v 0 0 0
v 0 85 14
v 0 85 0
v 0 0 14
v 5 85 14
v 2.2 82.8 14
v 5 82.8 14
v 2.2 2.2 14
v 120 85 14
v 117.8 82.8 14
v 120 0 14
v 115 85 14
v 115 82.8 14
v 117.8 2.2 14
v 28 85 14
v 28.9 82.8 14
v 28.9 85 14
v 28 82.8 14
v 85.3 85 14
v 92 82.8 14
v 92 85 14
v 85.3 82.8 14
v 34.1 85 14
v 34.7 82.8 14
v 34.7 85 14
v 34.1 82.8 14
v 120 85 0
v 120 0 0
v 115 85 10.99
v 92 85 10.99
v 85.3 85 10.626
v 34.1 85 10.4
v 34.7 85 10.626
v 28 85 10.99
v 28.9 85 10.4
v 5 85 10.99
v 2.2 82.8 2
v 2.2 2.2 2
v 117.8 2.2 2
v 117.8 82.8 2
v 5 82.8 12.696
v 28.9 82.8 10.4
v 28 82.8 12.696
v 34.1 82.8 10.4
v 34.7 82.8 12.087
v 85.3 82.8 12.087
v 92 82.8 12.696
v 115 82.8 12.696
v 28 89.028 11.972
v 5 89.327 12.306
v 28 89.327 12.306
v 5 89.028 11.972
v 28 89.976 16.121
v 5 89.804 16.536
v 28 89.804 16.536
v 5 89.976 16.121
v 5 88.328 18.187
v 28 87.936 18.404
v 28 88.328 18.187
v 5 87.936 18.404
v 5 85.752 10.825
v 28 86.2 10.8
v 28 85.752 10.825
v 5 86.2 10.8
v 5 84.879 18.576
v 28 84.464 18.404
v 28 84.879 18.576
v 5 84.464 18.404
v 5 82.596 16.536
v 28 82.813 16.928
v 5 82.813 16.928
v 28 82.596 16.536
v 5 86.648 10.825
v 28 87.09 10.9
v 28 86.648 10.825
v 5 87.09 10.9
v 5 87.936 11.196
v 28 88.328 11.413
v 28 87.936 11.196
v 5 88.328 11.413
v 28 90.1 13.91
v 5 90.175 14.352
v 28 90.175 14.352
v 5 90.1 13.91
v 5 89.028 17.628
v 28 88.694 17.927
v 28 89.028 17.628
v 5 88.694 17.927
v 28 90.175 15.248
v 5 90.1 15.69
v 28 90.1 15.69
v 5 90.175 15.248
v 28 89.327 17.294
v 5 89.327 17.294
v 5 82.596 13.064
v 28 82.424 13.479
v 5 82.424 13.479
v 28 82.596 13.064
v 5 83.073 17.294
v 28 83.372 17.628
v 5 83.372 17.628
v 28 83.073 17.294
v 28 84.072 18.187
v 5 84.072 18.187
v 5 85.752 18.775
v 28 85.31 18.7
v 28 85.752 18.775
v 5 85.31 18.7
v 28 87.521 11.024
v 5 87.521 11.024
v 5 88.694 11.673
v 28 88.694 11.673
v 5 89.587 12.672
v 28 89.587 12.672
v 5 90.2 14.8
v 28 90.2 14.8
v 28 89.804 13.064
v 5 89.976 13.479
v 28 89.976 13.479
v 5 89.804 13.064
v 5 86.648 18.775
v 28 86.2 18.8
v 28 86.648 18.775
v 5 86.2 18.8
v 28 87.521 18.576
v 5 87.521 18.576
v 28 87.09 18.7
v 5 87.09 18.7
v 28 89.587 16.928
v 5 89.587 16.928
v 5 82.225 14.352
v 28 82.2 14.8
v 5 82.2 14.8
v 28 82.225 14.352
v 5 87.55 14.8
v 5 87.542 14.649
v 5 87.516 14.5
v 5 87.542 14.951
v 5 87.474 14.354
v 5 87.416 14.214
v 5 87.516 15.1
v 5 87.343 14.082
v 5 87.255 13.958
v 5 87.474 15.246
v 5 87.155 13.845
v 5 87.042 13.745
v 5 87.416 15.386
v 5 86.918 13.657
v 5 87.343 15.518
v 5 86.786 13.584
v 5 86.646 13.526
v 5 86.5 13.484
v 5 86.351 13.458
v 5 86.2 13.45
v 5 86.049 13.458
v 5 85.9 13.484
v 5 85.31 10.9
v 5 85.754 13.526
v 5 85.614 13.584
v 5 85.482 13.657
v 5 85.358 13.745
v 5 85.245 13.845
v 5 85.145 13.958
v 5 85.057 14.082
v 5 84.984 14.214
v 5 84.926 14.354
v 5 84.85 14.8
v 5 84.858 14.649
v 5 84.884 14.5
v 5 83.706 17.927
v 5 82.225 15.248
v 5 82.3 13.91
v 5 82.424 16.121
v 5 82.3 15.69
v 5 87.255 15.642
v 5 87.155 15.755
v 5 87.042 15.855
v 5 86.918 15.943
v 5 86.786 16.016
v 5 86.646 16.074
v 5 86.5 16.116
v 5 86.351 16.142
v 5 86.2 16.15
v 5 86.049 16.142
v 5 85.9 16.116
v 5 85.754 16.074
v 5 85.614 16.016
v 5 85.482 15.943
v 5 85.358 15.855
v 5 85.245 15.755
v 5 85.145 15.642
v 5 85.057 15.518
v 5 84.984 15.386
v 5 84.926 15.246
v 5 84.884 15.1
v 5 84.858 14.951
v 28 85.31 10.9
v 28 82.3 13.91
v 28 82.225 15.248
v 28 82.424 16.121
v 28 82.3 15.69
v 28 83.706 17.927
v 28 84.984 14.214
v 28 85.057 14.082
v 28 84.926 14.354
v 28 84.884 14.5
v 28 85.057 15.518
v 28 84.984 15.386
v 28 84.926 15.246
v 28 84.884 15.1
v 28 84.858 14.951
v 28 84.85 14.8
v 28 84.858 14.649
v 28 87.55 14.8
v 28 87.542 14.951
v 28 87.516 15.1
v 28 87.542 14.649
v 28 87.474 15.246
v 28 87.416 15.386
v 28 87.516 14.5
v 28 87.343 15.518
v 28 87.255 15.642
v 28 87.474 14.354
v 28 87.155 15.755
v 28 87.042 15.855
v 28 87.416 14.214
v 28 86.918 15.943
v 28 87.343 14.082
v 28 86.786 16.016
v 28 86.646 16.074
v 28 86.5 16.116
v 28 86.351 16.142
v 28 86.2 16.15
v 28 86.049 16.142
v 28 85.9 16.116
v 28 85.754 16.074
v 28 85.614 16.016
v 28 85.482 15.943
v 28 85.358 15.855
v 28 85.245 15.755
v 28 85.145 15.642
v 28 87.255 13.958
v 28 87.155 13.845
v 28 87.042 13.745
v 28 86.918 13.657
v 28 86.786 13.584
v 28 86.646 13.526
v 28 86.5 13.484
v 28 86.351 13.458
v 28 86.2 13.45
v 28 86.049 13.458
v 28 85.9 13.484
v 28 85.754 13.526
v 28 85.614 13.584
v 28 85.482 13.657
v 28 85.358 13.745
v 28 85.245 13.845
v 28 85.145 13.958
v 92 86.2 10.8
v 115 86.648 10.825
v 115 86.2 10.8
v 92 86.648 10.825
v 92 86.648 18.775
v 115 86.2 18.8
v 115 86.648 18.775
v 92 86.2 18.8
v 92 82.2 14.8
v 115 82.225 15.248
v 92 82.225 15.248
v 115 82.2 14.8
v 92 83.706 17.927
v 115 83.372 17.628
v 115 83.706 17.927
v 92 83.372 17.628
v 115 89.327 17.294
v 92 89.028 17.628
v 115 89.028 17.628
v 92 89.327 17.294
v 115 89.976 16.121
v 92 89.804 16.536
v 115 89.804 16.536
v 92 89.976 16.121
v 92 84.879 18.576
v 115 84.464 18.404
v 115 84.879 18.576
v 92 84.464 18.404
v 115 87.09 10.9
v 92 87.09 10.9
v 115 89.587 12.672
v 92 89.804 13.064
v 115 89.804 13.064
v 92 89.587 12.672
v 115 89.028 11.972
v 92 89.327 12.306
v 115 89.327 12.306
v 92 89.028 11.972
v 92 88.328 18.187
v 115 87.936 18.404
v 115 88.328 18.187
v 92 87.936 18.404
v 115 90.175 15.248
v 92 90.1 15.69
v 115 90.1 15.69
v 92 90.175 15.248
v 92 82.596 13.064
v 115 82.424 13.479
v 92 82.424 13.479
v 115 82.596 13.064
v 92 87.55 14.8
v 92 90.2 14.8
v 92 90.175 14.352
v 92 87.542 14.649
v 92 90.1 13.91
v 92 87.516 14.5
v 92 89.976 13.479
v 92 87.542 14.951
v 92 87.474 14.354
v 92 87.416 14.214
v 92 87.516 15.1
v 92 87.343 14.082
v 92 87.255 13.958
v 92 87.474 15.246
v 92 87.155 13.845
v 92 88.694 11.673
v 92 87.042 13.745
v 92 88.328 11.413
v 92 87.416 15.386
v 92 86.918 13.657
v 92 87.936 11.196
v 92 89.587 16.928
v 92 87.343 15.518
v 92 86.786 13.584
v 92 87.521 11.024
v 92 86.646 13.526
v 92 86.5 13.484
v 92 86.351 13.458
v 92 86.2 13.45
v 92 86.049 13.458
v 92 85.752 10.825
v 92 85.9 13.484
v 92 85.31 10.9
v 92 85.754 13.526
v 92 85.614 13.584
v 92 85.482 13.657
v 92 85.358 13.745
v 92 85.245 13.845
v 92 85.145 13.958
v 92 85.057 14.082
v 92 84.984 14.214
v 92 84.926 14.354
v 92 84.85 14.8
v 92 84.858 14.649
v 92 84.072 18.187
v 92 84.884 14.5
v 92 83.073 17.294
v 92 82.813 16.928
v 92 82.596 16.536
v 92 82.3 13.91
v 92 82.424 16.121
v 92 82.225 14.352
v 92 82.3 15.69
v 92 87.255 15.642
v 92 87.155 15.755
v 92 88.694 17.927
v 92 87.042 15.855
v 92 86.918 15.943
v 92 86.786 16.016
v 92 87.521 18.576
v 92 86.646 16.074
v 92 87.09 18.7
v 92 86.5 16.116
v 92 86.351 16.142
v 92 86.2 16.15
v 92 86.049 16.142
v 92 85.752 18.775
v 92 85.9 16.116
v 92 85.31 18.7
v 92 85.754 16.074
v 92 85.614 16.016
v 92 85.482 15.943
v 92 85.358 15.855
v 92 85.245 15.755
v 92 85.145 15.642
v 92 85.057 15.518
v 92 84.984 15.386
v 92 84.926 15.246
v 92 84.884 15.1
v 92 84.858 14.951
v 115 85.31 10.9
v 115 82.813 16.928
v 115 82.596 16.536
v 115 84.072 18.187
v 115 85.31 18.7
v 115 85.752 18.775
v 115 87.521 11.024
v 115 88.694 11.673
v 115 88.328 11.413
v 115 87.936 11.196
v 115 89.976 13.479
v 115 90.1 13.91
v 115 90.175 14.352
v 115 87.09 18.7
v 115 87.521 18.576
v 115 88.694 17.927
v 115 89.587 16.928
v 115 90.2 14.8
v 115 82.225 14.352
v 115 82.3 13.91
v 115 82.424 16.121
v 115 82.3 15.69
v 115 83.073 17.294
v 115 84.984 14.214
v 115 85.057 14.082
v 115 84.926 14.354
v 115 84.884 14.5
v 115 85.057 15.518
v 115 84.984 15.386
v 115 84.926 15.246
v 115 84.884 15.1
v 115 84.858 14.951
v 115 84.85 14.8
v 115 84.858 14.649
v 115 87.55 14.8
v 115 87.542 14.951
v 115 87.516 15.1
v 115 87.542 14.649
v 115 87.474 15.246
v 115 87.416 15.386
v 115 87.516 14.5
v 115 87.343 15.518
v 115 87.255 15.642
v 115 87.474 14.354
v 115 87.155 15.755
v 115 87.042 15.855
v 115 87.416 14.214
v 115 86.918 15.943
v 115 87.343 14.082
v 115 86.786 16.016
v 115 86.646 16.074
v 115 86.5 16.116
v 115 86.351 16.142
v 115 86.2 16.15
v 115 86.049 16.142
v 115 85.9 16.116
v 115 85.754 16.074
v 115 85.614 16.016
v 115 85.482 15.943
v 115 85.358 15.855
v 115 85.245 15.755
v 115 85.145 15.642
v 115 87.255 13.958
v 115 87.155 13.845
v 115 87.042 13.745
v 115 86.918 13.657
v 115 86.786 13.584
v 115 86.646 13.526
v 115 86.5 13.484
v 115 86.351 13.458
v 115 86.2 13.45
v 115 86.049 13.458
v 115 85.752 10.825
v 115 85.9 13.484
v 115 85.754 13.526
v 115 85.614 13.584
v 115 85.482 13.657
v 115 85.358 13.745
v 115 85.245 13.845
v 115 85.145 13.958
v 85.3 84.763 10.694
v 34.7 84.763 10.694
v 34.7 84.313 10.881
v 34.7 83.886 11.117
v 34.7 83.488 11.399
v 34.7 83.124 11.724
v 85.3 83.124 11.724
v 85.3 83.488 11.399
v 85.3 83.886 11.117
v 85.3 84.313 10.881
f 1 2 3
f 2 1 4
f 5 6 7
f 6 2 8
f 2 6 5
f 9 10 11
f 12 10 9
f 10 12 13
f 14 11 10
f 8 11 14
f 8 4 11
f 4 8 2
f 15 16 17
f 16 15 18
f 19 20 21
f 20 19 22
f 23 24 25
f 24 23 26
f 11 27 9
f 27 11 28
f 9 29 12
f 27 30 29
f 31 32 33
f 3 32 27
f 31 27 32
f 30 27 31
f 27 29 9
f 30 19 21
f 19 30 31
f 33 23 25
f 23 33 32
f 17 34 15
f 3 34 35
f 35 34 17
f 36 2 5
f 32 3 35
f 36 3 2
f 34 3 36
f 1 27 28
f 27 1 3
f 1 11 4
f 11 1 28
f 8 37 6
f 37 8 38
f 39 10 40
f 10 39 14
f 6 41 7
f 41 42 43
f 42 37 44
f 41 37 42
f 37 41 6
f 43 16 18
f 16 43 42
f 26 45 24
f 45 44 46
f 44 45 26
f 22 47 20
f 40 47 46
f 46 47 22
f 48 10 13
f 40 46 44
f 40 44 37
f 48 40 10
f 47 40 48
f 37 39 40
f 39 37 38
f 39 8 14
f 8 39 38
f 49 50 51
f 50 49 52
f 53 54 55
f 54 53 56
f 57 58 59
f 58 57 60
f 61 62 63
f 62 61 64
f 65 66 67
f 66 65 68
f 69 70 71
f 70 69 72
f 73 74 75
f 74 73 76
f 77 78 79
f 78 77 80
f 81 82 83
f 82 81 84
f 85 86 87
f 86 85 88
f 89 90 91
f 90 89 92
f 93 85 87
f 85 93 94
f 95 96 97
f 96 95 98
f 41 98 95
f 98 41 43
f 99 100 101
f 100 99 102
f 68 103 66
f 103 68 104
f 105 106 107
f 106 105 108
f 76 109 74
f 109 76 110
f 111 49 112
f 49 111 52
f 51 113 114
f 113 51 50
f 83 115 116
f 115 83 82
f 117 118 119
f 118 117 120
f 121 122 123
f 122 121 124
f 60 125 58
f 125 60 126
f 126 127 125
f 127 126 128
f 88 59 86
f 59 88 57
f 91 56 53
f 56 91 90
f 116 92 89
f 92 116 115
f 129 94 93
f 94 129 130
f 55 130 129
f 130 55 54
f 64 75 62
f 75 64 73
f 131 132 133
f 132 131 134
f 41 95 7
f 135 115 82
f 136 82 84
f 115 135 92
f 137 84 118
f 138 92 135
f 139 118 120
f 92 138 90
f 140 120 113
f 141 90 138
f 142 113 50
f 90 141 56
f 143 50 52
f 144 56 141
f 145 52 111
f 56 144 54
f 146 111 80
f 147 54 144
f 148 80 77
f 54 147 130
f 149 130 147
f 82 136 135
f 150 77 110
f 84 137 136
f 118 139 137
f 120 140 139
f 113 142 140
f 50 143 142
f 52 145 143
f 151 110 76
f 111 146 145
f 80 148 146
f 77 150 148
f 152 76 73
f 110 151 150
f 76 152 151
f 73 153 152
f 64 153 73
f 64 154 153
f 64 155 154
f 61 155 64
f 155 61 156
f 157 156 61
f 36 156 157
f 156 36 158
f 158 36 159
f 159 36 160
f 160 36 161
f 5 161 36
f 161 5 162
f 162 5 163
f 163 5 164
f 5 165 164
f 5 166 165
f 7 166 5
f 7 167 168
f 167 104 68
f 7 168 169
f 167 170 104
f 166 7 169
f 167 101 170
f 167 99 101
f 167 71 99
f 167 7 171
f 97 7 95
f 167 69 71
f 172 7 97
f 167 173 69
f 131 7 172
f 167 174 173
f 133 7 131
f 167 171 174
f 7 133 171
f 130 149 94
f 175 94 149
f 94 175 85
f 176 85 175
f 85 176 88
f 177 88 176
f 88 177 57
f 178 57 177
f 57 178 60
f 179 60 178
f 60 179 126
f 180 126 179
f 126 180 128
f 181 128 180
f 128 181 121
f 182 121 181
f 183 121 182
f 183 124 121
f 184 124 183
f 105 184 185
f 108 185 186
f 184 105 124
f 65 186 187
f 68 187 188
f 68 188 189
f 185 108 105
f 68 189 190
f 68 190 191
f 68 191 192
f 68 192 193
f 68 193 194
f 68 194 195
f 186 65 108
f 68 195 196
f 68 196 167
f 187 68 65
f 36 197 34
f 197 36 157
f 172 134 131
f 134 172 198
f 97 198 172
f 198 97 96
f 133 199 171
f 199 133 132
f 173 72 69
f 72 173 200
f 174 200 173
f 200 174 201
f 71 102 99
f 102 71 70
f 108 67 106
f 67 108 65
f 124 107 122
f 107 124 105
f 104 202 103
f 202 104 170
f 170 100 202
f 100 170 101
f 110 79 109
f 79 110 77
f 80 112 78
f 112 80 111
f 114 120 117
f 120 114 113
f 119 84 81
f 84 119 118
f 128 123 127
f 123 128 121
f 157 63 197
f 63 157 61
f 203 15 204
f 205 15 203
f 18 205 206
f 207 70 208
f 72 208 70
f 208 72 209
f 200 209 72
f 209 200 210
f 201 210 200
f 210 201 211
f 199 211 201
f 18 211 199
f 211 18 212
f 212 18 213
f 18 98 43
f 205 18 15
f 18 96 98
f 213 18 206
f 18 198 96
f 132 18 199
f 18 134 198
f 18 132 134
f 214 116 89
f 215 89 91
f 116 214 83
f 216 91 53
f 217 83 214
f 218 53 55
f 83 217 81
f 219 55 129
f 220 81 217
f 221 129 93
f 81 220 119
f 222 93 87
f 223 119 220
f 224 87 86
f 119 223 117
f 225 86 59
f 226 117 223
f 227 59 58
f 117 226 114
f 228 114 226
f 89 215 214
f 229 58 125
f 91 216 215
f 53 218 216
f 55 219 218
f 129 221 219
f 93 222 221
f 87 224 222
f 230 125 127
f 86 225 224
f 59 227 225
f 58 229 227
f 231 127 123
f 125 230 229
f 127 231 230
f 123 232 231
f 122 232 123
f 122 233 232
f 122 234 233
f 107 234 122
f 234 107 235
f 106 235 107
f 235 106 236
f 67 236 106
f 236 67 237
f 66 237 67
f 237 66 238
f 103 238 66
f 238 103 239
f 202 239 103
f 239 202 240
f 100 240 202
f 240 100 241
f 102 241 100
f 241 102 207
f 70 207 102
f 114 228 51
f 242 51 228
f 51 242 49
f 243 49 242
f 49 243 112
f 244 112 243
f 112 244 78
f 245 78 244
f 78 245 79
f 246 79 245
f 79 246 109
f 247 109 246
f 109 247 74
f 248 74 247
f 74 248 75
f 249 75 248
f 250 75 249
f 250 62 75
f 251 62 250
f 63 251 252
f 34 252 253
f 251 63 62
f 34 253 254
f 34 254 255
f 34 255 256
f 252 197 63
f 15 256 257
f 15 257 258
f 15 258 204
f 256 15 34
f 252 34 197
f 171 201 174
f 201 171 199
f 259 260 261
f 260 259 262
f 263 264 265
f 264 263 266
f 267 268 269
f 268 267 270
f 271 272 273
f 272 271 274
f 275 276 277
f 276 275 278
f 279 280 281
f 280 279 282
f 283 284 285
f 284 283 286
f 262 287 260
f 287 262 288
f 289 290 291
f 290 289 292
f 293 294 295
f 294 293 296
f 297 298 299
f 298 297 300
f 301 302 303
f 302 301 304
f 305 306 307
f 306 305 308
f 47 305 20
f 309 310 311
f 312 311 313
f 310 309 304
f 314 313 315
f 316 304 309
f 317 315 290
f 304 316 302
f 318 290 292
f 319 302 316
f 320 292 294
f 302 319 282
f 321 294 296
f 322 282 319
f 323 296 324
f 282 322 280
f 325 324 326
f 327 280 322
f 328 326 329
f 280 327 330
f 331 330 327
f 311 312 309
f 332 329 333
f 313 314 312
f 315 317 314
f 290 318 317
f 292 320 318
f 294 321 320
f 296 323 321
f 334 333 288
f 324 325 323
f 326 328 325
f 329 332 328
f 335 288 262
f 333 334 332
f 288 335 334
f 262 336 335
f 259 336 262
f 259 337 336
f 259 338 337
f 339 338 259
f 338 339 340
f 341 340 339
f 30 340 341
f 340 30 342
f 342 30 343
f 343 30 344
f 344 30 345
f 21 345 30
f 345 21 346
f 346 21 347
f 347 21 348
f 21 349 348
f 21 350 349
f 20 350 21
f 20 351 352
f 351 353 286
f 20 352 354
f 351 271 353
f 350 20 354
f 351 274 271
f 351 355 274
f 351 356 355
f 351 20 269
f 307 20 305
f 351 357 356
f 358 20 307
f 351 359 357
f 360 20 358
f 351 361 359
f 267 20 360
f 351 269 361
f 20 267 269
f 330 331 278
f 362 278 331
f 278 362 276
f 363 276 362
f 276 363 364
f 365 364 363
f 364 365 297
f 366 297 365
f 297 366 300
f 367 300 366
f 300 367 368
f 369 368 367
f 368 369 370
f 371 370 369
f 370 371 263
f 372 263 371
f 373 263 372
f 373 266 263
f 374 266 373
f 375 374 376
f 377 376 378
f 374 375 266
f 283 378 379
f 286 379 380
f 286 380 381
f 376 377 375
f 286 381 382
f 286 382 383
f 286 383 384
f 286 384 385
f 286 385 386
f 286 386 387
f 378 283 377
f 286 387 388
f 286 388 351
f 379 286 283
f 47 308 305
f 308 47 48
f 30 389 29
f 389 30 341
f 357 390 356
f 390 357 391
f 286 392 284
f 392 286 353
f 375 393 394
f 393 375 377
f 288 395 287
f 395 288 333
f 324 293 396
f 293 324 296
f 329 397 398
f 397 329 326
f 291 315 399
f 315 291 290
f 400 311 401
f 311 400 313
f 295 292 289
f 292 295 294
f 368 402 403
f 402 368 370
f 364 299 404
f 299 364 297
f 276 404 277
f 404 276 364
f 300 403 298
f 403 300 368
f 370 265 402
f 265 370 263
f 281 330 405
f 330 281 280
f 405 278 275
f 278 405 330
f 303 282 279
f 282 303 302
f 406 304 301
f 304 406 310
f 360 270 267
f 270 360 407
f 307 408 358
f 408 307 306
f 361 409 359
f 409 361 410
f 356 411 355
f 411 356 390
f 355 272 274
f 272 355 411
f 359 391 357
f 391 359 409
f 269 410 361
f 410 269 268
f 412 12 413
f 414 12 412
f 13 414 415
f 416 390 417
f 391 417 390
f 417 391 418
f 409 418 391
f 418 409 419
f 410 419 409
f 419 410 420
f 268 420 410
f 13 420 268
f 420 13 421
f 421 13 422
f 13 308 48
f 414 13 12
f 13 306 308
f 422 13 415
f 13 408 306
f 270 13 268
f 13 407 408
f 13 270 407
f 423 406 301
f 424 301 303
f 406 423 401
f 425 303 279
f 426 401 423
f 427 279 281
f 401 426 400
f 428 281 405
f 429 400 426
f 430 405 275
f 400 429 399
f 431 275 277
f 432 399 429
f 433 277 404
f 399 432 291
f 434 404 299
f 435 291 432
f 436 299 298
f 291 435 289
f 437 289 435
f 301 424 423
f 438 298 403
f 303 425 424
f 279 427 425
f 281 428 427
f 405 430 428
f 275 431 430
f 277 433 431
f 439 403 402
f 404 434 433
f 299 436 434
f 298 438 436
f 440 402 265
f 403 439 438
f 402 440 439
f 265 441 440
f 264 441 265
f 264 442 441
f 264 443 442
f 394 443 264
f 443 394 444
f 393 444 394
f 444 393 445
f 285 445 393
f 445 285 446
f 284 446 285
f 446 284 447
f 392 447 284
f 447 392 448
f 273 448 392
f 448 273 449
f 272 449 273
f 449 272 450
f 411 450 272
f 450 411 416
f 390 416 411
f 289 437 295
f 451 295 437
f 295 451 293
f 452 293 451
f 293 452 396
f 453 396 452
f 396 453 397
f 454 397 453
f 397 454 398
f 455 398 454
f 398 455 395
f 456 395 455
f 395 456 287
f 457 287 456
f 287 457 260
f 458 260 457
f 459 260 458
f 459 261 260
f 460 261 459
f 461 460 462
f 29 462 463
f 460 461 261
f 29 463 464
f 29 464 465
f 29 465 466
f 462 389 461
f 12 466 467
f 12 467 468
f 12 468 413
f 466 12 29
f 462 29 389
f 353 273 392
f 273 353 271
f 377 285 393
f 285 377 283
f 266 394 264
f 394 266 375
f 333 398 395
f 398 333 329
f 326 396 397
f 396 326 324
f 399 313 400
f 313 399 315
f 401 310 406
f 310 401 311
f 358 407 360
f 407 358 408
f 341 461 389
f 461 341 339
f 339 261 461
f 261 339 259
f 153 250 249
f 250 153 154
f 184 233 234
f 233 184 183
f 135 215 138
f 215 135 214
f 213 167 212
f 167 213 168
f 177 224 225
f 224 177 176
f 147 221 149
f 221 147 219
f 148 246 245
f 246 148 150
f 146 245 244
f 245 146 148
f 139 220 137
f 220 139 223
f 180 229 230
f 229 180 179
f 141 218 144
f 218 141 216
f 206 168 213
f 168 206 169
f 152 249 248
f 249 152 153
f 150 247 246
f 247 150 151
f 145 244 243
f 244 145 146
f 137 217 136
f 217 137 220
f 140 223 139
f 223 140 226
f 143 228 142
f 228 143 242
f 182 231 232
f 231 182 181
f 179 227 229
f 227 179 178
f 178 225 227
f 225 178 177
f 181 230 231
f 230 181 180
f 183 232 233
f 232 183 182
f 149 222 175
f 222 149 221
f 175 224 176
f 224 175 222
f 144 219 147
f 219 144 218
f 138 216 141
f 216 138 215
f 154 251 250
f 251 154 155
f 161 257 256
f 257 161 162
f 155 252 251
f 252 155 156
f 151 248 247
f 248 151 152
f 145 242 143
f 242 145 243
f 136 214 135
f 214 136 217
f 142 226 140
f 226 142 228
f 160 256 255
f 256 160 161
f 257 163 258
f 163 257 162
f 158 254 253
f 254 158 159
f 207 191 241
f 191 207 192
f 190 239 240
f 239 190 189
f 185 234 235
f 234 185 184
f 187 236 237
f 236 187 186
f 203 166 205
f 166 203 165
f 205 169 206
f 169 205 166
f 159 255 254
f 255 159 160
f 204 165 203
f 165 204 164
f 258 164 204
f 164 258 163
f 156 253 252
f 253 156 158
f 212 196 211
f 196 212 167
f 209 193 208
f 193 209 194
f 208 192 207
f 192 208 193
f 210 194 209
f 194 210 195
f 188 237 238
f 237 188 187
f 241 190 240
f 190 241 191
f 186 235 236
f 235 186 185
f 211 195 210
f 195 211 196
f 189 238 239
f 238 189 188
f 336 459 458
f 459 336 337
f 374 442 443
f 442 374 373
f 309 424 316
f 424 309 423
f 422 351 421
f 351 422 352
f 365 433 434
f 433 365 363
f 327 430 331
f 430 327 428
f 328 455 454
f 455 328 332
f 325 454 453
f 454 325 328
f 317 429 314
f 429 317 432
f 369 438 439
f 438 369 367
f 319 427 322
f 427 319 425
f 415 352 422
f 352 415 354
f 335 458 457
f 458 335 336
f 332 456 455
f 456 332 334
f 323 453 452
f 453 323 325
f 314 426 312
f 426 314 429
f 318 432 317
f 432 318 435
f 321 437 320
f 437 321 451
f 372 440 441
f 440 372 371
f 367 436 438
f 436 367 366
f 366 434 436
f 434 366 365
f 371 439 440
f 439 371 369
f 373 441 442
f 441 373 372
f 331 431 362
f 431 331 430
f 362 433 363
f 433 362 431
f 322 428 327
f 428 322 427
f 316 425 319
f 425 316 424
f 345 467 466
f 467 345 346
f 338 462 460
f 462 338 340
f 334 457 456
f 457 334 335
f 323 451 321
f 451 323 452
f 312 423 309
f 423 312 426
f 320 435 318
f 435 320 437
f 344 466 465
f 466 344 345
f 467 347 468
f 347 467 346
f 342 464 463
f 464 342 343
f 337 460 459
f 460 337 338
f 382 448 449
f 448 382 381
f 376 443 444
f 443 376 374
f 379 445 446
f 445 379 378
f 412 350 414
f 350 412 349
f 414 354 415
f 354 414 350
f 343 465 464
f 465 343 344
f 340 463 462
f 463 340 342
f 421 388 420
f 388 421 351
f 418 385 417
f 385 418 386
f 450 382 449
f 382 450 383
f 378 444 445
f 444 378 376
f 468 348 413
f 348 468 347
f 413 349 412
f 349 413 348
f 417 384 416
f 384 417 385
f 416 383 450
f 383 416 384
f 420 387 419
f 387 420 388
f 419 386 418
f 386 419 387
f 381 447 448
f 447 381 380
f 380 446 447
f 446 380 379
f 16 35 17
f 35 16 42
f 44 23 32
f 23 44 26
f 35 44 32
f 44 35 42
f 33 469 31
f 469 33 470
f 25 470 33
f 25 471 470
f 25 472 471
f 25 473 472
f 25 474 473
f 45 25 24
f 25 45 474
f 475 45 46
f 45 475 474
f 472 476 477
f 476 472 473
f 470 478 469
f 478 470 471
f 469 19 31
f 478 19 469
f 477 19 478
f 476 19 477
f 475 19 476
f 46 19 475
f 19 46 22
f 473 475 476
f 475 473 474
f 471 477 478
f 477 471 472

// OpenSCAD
// Generated by Mecha-Splicer: clamshell_terminal v1
// Dimension-based CAD ONLY: unknown PCB screw positions, USB access and real fit.
// base / keyboard tray, all dimensions in mm
$fn=56;
W=120.0; D=85.0; wall=2.2; floor=2.0;
HBASE=14.0; HLID=14.0; gap=1.6;
hy=86.2; hz=14.8;
kr=4.0; bore=2.7;

module base_shell() {
  difference() {
    union() {
      difference() {
        cube([W,D,HBASE]);
        translate([wall,wall,floor]) cube([W-2*wall,D-2*wall,HBASE+1]);
      }
      for (x=[5.0,92.0]) translate([x,hy,hz]) rotate([0,90,0]) cylinder(h=23.0,r=kr);
    }
    // Strain-relief entry only: actual cable bend life remains untested
    translate([28.9,82.7,10.4]) cube([5.2,2.4000000000000004,3.7]);
    // Clearance pocket for opposite lid knuckle through base rear wall
    translate([34.7,hy,hz]) rotate([0,90,0]) cylinder(h=50.6,r=4.35);
    // Through-bore including relief outside the short segments
    for (x=[4.8,91.8]) translate([x,hy,hz]) rotate([0,90,0]) cylinder(h=23.4,d=bore);
  }
}
base_shell();
